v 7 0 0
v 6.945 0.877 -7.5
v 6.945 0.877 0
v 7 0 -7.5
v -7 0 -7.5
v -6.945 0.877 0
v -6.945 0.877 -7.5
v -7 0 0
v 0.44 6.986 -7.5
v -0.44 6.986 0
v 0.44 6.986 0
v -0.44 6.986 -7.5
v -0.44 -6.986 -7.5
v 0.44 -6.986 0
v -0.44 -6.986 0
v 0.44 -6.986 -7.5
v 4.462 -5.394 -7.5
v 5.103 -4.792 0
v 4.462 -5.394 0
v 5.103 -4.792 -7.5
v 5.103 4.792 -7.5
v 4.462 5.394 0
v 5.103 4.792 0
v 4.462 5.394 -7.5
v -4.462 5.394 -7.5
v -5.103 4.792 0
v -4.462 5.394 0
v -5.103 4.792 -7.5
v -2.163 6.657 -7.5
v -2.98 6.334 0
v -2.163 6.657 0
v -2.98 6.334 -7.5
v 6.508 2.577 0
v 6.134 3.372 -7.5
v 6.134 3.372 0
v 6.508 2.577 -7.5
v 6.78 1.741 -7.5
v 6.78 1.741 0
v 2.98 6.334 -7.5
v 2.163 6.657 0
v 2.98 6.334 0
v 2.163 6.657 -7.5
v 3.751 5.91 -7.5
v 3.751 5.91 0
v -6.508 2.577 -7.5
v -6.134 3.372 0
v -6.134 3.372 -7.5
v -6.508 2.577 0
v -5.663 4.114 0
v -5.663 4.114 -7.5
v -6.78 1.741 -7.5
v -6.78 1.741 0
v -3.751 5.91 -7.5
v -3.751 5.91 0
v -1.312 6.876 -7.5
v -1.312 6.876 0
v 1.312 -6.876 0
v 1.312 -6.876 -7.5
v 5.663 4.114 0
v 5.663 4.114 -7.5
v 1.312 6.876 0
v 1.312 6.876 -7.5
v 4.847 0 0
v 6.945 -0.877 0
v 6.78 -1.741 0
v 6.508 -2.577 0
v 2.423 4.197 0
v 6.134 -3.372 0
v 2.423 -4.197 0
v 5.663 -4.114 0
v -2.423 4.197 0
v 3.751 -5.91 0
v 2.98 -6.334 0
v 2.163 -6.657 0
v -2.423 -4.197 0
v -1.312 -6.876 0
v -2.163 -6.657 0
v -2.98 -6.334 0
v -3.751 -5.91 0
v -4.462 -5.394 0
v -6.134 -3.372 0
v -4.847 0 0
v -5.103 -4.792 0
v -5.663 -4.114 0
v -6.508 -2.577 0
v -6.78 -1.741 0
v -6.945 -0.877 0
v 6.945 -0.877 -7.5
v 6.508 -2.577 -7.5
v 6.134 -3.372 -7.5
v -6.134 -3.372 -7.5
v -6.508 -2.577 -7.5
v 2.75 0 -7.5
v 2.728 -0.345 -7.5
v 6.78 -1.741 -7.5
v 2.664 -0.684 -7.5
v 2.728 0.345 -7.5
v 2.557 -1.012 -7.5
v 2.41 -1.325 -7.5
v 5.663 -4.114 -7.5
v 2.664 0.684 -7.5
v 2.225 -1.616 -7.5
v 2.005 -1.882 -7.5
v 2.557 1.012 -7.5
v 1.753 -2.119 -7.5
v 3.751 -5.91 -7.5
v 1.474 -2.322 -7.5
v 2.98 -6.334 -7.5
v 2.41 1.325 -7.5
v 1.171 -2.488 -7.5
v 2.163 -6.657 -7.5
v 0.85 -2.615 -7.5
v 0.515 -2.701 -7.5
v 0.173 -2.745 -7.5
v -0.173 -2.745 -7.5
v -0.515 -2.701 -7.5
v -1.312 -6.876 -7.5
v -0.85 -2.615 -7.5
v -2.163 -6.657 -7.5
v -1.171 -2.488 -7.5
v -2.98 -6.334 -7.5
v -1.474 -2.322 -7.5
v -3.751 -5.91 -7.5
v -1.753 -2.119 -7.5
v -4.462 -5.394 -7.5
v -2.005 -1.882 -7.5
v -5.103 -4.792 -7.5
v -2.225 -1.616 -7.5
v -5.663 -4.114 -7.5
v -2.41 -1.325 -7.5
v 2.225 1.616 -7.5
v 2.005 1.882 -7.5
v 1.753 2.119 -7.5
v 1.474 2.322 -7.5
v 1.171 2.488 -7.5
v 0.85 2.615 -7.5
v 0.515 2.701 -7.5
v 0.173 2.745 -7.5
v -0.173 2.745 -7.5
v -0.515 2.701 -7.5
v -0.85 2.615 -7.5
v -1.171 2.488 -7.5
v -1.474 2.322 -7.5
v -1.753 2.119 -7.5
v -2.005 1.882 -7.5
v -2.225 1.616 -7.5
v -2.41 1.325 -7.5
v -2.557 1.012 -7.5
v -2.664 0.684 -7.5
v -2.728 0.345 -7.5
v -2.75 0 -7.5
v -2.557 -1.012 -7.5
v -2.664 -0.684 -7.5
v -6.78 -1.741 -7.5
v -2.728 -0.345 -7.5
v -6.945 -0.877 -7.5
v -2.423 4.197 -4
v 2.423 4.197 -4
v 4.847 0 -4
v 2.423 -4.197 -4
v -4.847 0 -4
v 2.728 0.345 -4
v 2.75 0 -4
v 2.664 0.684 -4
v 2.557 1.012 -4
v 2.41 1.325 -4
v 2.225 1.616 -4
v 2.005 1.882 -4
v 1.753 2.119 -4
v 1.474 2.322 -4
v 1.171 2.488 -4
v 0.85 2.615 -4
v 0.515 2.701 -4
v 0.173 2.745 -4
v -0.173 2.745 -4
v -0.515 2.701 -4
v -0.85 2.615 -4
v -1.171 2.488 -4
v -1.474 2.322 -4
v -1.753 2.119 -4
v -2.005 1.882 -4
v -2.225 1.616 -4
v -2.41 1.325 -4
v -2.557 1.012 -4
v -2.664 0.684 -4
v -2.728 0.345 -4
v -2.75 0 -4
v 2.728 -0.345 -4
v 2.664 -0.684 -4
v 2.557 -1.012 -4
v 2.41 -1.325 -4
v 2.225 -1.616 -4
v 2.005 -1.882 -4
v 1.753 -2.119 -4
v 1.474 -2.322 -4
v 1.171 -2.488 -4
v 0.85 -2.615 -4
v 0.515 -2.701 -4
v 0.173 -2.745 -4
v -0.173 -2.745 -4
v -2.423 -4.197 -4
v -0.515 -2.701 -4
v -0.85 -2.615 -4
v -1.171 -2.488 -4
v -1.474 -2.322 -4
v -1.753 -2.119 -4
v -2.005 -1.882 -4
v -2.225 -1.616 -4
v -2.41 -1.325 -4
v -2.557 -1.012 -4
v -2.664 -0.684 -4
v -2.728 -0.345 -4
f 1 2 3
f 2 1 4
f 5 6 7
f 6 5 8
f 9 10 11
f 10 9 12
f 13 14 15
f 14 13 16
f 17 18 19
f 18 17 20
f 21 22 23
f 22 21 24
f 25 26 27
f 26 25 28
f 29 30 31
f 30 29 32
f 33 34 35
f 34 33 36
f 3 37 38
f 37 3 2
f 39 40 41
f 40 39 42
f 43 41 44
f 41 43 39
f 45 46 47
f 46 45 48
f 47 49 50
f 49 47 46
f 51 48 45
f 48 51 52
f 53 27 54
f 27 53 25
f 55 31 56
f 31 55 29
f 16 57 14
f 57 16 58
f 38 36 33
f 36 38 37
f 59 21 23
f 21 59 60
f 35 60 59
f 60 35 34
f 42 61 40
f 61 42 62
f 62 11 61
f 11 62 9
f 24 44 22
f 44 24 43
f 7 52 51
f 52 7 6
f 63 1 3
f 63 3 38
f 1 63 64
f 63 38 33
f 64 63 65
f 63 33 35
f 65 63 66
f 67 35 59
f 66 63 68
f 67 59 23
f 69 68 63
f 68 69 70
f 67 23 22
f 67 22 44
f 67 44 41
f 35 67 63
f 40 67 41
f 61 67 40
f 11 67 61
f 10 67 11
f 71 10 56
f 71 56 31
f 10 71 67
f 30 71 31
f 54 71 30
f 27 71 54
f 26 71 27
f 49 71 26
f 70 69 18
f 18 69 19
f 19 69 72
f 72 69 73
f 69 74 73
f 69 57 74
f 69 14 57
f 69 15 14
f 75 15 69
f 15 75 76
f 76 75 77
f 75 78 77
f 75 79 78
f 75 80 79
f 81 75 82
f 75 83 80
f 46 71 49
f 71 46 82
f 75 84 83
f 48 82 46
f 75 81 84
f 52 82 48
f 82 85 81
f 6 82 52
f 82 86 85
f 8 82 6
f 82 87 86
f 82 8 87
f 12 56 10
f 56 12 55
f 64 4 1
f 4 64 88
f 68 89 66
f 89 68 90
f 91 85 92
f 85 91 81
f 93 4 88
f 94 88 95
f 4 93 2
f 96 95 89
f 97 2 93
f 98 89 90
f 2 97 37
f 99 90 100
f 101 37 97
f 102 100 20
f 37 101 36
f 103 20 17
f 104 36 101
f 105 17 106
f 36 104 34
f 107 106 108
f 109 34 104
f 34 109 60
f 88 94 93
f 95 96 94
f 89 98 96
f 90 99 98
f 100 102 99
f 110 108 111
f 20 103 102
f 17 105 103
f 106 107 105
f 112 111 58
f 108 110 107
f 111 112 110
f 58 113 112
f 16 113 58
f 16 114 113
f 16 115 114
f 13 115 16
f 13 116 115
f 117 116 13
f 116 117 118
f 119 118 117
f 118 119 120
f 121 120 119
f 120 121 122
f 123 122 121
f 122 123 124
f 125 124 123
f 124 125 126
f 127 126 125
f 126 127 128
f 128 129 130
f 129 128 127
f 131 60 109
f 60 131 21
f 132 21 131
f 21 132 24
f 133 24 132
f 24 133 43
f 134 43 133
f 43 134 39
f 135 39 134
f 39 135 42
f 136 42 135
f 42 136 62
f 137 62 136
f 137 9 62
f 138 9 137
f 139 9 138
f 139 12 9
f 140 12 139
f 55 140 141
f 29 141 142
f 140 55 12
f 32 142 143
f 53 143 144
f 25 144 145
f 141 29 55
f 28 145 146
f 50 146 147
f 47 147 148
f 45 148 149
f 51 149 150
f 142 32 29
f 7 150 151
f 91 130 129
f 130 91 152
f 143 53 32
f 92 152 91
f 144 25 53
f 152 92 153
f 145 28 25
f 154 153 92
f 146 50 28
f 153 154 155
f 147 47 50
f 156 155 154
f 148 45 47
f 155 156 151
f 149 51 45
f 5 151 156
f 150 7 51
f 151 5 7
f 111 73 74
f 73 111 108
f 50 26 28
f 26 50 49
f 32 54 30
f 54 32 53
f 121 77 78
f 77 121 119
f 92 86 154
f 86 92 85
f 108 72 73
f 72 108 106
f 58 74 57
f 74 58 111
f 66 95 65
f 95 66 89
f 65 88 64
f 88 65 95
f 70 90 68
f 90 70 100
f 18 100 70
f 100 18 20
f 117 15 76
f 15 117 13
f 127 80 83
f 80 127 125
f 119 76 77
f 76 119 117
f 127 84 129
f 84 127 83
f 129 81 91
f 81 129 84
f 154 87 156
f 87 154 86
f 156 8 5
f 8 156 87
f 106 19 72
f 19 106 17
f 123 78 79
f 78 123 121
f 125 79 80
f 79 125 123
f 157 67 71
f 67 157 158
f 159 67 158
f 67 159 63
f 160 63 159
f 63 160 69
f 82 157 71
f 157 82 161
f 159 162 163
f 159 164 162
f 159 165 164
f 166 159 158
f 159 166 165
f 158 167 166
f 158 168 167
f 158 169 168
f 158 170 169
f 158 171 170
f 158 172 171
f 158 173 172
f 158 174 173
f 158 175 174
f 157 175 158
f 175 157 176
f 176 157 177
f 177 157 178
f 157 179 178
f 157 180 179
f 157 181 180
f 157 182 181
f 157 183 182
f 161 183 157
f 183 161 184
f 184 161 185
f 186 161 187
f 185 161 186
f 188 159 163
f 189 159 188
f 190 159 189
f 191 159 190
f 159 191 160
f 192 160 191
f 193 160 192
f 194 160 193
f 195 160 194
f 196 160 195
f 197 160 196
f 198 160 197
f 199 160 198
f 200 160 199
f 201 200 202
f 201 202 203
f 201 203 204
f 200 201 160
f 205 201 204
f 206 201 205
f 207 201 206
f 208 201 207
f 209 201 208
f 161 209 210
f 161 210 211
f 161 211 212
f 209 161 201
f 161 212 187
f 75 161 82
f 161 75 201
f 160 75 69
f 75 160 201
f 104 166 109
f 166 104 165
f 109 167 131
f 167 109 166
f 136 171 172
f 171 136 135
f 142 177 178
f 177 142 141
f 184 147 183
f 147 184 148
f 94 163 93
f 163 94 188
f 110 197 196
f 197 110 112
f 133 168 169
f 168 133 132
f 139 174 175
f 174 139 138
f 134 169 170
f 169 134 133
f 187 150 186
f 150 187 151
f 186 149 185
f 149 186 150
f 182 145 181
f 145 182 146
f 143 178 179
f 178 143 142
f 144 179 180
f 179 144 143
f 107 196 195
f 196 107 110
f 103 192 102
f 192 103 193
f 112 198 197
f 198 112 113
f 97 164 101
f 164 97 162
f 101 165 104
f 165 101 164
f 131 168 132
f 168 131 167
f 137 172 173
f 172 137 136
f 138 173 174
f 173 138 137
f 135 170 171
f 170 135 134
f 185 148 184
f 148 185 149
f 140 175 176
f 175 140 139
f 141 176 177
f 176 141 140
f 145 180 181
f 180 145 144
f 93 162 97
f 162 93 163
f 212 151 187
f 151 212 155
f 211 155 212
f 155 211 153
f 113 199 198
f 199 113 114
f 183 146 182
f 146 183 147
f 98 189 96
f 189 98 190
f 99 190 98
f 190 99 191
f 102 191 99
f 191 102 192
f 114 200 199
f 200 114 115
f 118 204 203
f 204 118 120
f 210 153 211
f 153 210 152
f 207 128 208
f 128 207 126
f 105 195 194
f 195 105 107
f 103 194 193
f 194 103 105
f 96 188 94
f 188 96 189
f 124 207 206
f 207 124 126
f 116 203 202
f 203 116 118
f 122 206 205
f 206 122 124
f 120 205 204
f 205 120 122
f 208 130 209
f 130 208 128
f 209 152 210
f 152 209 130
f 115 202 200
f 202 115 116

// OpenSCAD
$fn = 50;


difference() {
	union() {
		translate(v = [0, 0, -7.5000000000]) {
			cylinder(h = 7.5000000000, r = 7.0000000000);
		}
		translate(v = [0, 0, -6.0000000000]) {
			cylinder(h = 6, r = 2.8750000000);
		}
	}
	union() {
		translate(v = [0, 0, 0]) {
			rotate(a = [0, 0, 0]) {
				difference() {
					union() {
						translate(v = [0, 0, -4]) {
							linear_extrude(height = 4) {
								polygon(points = [[4.8468000000, 0.0000000000], [2.4234000000, 4.1974519271], [-2.4234000000, 4.1974519271], [-4.8468000000, 0.0000000000], [-2.4234000000, -4.1974519271], [2.4234000000, -4.1974519271]]);
							}
						}
					}
					union();
				}
			}
		}
		#translate(v = [0, 0, -100.0000000000]) {
			cylinder(h = 200, r = 2.7500000000);
		}
	}
}
